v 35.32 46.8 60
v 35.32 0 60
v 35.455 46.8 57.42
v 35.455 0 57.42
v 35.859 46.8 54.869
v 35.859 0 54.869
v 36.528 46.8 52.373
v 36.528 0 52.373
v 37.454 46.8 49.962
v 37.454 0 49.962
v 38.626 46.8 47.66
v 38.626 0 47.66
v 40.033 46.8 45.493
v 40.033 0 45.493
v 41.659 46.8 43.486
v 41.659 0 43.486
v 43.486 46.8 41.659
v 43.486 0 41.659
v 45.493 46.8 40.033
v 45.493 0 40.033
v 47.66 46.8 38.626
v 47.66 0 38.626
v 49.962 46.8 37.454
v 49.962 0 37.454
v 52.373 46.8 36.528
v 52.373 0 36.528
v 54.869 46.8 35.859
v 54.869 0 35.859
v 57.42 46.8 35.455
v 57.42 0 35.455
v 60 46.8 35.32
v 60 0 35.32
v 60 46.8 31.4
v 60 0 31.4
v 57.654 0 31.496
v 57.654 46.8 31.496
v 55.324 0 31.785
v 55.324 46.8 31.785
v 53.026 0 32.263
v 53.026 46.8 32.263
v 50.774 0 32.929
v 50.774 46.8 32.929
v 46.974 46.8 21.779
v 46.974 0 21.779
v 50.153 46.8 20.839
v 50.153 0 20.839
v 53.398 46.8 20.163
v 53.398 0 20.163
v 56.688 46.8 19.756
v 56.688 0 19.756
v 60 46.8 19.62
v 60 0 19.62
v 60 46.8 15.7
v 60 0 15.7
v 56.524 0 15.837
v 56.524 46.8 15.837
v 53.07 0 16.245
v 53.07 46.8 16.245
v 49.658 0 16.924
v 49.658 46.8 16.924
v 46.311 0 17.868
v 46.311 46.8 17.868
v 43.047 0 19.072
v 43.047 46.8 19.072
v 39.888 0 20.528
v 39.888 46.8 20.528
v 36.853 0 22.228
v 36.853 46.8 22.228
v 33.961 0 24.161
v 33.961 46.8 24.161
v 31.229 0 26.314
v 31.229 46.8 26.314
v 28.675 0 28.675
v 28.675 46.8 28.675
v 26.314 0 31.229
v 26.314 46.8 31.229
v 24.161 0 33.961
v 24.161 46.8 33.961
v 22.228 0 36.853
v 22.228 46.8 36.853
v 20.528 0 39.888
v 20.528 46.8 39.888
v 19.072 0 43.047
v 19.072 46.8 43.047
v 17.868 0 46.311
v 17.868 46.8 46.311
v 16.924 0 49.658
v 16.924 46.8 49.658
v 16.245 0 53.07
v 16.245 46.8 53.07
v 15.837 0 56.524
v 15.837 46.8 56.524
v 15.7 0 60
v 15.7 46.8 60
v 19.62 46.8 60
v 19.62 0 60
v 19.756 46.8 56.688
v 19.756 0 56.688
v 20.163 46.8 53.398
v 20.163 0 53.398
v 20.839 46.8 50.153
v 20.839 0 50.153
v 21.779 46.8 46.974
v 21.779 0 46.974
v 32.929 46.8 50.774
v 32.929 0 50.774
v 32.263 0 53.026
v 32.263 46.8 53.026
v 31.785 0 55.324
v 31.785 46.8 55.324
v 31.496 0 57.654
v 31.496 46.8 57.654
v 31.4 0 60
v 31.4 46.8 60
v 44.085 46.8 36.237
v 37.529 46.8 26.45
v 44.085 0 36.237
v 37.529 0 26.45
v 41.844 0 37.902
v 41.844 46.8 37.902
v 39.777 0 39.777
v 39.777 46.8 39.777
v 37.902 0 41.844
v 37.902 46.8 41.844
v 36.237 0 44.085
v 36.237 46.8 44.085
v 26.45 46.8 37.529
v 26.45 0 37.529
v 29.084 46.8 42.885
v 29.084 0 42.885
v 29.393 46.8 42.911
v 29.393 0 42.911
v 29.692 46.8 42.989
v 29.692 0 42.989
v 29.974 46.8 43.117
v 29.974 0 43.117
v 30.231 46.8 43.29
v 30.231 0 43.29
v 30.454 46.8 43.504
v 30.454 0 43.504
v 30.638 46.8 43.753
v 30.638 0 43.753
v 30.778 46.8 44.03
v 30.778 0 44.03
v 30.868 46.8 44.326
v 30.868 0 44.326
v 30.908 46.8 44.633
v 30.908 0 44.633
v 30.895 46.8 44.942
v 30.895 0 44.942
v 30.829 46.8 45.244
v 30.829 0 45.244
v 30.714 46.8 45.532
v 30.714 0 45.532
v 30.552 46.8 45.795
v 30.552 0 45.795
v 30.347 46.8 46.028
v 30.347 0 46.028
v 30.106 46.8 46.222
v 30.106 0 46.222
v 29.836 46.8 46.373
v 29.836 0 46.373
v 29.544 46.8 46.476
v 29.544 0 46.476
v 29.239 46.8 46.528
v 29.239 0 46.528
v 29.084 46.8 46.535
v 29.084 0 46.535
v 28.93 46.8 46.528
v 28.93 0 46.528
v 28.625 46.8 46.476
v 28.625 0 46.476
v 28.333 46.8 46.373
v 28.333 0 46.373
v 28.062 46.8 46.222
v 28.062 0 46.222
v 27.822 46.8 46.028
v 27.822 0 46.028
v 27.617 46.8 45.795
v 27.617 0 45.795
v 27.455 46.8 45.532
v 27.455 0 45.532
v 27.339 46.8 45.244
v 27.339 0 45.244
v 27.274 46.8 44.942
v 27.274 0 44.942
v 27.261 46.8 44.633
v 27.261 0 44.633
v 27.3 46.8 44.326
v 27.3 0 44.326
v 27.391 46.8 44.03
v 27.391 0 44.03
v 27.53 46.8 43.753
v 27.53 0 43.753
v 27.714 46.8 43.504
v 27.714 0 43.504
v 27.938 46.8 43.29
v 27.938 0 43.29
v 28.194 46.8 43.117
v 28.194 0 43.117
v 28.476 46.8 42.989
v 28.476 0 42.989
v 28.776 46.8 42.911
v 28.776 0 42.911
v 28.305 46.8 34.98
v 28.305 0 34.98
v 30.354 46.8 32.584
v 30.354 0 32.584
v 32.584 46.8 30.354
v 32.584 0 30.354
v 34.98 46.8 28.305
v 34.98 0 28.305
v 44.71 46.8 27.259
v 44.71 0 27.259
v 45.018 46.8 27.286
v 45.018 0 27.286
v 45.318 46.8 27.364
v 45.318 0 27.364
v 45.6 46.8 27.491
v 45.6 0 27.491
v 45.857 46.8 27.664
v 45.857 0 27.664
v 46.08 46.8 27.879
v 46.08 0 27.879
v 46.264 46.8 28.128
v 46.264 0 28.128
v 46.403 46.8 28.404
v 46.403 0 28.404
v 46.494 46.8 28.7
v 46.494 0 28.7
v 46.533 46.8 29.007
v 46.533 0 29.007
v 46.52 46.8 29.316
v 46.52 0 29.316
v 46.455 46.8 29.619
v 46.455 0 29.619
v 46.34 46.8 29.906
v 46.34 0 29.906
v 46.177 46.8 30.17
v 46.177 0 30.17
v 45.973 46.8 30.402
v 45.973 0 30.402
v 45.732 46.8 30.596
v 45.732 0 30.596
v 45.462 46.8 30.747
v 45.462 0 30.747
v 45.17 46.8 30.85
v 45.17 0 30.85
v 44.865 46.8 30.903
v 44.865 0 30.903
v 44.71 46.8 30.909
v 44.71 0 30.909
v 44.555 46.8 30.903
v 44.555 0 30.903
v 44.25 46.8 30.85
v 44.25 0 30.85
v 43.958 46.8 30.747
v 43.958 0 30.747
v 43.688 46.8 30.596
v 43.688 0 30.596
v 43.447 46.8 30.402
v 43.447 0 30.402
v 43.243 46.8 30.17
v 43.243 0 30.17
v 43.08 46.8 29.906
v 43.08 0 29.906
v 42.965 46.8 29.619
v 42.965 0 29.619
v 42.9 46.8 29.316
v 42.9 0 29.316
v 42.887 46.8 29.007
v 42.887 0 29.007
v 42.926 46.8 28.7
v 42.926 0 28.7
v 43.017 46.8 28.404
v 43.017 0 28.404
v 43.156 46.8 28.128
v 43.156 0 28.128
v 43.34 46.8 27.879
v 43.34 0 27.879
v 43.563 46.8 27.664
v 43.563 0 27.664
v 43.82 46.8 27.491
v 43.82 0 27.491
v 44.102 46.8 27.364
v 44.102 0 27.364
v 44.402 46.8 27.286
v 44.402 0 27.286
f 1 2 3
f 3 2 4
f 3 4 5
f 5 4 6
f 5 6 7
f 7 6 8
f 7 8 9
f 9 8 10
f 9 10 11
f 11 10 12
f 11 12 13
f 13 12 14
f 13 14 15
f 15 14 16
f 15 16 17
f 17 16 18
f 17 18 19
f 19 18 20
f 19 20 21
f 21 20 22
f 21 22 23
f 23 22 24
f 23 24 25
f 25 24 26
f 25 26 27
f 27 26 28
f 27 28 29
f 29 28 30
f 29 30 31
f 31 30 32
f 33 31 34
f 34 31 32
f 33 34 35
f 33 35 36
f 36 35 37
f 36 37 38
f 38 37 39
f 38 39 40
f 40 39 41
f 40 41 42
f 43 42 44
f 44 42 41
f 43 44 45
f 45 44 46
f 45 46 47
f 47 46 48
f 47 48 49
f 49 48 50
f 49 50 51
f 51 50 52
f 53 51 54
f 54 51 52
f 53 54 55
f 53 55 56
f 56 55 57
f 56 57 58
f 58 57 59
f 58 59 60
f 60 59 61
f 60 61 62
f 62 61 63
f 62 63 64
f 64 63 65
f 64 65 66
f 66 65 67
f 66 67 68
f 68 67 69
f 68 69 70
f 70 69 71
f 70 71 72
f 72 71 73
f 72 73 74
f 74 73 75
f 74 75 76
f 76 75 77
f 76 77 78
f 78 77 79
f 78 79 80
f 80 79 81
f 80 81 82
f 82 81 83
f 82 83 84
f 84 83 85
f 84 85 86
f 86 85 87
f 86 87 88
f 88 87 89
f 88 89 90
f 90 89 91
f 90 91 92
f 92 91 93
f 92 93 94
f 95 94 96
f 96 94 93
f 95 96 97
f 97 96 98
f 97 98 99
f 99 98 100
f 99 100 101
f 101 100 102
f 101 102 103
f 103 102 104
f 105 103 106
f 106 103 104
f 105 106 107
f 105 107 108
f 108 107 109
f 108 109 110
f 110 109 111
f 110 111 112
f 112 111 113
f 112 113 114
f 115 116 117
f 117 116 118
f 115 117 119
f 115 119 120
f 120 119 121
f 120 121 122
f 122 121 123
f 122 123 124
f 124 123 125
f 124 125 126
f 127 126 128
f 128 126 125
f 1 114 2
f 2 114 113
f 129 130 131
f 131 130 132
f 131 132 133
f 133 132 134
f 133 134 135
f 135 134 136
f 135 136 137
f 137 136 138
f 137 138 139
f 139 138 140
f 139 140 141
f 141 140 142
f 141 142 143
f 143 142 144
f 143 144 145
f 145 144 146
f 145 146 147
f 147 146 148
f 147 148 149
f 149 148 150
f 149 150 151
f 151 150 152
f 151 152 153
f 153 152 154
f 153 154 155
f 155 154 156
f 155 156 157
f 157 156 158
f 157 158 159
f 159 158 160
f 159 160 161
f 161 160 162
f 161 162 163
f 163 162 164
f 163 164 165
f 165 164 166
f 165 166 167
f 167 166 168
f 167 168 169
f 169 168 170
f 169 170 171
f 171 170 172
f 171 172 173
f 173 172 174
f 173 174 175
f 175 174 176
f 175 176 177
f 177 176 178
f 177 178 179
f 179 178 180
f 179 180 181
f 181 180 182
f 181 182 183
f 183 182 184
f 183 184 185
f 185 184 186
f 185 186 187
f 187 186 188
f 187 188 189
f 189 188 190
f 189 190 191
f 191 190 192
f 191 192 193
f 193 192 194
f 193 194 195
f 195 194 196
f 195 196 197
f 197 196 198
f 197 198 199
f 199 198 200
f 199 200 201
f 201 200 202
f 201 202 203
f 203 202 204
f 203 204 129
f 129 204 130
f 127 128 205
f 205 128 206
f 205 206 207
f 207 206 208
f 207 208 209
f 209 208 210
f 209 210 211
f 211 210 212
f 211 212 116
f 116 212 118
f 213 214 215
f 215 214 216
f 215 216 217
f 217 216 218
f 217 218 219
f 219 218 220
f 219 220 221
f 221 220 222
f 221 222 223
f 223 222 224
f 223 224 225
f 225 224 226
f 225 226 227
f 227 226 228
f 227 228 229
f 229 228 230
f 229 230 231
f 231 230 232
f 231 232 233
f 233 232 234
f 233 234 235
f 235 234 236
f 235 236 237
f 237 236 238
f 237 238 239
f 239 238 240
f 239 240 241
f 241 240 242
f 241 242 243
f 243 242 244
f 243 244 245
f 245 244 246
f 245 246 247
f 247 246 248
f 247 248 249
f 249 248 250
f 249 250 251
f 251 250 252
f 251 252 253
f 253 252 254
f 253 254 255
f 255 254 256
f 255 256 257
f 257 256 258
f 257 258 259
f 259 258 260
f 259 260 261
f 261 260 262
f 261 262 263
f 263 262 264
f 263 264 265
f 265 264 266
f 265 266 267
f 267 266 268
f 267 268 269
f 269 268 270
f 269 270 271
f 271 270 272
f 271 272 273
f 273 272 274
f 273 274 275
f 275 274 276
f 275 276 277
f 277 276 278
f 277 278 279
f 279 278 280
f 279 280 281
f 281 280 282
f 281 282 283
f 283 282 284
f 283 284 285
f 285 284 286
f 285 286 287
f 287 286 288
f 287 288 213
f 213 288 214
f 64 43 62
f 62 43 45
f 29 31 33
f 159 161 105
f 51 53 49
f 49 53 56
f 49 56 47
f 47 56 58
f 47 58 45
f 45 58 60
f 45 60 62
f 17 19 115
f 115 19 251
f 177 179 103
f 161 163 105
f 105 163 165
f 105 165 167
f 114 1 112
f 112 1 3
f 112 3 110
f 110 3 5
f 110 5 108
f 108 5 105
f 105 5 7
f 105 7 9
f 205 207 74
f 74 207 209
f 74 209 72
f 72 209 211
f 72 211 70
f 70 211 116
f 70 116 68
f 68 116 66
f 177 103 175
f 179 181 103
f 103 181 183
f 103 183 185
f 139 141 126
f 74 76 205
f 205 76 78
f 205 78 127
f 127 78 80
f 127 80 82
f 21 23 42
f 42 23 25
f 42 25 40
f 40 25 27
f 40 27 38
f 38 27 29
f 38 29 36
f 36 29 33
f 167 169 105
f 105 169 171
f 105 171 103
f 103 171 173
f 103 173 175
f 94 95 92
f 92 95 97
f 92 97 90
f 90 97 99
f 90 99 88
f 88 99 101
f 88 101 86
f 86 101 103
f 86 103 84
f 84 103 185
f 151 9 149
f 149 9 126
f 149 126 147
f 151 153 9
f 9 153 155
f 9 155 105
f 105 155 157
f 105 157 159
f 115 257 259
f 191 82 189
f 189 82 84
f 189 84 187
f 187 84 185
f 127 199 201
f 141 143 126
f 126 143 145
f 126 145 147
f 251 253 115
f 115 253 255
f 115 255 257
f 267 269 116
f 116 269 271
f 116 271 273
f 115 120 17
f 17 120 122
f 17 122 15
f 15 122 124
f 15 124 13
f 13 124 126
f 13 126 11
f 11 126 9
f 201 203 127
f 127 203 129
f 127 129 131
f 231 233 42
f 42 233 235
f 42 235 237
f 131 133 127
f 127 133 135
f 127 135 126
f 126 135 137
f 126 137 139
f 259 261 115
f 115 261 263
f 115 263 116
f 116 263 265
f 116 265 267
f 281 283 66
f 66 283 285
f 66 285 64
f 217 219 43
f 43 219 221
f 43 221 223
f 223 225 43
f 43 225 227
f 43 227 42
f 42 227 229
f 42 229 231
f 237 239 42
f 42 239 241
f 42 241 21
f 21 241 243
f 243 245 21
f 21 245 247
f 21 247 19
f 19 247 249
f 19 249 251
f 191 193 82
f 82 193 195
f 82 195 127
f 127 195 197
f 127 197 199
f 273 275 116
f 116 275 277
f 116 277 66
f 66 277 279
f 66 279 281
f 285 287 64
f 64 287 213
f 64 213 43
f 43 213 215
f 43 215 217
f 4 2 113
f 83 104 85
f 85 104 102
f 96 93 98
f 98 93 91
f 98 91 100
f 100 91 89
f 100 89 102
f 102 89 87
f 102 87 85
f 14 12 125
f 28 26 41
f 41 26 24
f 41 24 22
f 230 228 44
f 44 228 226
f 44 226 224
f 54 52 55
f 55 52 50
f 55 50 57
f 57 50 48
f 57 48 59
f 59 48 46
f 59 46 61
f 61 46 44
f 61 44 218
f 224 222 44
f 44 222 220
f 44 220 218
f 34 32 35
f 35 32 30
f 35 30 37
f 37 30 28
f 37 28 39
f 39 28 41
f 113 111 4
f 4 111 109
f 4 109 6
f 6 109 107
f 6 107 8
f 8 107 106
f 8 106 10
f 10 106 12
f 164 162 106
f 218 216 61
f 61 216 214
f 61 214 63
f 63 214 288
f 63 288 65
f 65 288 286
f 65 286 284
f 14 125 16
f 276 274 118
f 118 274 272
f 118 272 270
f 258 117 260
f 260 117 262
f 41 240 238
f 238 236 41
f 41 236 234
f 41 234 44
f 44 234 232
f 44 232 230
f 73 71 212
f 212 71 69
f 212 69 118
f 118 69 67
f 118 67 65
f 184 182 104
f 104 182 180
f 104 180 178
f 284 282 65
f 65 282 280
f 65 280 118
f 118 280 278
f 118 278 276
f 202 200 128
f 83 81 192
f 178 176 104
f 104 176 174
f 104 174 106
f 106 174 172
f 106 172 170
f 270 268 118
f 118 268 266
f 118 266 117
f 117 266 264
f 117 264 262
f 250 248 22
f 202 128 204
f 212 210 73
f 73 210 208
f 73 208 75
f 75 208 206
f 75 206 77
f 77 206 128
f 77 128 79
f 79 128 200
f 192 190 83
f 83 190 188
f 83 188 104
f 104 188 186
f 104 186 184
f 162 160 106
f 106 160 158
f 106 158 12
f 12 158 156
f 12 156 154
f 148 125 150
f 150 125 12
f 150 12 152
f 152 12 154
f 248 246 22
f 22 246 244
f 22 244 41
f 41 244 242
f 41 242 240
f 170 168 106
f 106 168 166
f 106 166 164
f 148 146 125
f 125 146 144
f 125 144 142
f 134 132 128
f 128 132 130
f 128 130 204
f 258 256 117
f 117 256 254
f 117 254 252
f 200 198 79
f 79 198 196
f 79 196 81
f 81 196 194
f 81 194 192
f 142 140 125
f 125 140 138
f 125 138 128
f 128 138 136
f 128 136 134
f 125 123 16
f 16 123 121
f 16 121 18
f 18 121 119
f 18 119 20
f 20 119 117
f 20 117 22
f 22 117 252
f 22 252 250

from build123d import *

# Parameters (mm, degrees)
SKETCH2_R           = 1.825
BOSS_EXTRUDE2_DEPTH = 46.8


with BuildPart() as part:
    # Sketch2 → Boss-Extrude2 (new body)
    with BuildSketch(Plane(origin=(0, 0, 0), x_dir=(1, 0, 0), z_dir=(0, 1, 0))):
        with BuildLine():
            Line((31.4, -60), (35.32, -60))
            ThreePointArc((35.32, -60), (42.54860464, -42.54860464), (60, -35.32))
            Line((60, -35.32), (60, -31.4))
            ThreePointArc((60, -31.4), (55.324247919, -31.784802987), (50.774317053, -32.928857169))
            Line((50.774317053, -32.928857169), (46.974367923, -21.778575262))
            ThreePointArc((46.974367923, -21.778575262), (53.398361223, -20.163298763), (60, -19.62))
            Line((60, -19.62), (60, -15.7))
            ThreePointArc((60, -15.7), (28.675169593, -28.675169593), (15.7, -60))
            Line((15.7, -60), (19.62, -60))
            ThreePointArc((19.62, -60), (20.163298763, -53.398361223), (21.778575262, -46.974367923))
            Line((21.778575262, -46.974367923), (32.928857169, -50.774317053))
            ThreePointArc((32.928857169, -50.774317053), (31.784802987, -55.324247919), (31.4, -60))
        make_face()
        with BuildLine():
            Line((37.529399815, -26.449790949), (44.084716065, -36.237345744))
            ThreePointArc((44.084716065, -36.237345744), (39.776746058, -39.776746058), (36.237345744, -44.084716065))
            Line((36.237345744, -44.084716065), (26.449790949, -37.529399815))
            ThreePointArc((26.449790949, -37.529399815), (31.447028176, -31.447028176), (37.529399815, -26.449790949))
        make_face(mode=Mode.SUBTRACT)
        with Locations((29.084372884, -44.71)):
            Circle(SKETCH2_R, mode=Mode.SUBTRACT)
        with Locations((44.71, -29.084372884)):
            Circle(SKETCH2_R, mode=Mode.SUBTRACT)
    extrude(amount=BOSS_EXTRUDE2_DEPTH)


solid = part.part
